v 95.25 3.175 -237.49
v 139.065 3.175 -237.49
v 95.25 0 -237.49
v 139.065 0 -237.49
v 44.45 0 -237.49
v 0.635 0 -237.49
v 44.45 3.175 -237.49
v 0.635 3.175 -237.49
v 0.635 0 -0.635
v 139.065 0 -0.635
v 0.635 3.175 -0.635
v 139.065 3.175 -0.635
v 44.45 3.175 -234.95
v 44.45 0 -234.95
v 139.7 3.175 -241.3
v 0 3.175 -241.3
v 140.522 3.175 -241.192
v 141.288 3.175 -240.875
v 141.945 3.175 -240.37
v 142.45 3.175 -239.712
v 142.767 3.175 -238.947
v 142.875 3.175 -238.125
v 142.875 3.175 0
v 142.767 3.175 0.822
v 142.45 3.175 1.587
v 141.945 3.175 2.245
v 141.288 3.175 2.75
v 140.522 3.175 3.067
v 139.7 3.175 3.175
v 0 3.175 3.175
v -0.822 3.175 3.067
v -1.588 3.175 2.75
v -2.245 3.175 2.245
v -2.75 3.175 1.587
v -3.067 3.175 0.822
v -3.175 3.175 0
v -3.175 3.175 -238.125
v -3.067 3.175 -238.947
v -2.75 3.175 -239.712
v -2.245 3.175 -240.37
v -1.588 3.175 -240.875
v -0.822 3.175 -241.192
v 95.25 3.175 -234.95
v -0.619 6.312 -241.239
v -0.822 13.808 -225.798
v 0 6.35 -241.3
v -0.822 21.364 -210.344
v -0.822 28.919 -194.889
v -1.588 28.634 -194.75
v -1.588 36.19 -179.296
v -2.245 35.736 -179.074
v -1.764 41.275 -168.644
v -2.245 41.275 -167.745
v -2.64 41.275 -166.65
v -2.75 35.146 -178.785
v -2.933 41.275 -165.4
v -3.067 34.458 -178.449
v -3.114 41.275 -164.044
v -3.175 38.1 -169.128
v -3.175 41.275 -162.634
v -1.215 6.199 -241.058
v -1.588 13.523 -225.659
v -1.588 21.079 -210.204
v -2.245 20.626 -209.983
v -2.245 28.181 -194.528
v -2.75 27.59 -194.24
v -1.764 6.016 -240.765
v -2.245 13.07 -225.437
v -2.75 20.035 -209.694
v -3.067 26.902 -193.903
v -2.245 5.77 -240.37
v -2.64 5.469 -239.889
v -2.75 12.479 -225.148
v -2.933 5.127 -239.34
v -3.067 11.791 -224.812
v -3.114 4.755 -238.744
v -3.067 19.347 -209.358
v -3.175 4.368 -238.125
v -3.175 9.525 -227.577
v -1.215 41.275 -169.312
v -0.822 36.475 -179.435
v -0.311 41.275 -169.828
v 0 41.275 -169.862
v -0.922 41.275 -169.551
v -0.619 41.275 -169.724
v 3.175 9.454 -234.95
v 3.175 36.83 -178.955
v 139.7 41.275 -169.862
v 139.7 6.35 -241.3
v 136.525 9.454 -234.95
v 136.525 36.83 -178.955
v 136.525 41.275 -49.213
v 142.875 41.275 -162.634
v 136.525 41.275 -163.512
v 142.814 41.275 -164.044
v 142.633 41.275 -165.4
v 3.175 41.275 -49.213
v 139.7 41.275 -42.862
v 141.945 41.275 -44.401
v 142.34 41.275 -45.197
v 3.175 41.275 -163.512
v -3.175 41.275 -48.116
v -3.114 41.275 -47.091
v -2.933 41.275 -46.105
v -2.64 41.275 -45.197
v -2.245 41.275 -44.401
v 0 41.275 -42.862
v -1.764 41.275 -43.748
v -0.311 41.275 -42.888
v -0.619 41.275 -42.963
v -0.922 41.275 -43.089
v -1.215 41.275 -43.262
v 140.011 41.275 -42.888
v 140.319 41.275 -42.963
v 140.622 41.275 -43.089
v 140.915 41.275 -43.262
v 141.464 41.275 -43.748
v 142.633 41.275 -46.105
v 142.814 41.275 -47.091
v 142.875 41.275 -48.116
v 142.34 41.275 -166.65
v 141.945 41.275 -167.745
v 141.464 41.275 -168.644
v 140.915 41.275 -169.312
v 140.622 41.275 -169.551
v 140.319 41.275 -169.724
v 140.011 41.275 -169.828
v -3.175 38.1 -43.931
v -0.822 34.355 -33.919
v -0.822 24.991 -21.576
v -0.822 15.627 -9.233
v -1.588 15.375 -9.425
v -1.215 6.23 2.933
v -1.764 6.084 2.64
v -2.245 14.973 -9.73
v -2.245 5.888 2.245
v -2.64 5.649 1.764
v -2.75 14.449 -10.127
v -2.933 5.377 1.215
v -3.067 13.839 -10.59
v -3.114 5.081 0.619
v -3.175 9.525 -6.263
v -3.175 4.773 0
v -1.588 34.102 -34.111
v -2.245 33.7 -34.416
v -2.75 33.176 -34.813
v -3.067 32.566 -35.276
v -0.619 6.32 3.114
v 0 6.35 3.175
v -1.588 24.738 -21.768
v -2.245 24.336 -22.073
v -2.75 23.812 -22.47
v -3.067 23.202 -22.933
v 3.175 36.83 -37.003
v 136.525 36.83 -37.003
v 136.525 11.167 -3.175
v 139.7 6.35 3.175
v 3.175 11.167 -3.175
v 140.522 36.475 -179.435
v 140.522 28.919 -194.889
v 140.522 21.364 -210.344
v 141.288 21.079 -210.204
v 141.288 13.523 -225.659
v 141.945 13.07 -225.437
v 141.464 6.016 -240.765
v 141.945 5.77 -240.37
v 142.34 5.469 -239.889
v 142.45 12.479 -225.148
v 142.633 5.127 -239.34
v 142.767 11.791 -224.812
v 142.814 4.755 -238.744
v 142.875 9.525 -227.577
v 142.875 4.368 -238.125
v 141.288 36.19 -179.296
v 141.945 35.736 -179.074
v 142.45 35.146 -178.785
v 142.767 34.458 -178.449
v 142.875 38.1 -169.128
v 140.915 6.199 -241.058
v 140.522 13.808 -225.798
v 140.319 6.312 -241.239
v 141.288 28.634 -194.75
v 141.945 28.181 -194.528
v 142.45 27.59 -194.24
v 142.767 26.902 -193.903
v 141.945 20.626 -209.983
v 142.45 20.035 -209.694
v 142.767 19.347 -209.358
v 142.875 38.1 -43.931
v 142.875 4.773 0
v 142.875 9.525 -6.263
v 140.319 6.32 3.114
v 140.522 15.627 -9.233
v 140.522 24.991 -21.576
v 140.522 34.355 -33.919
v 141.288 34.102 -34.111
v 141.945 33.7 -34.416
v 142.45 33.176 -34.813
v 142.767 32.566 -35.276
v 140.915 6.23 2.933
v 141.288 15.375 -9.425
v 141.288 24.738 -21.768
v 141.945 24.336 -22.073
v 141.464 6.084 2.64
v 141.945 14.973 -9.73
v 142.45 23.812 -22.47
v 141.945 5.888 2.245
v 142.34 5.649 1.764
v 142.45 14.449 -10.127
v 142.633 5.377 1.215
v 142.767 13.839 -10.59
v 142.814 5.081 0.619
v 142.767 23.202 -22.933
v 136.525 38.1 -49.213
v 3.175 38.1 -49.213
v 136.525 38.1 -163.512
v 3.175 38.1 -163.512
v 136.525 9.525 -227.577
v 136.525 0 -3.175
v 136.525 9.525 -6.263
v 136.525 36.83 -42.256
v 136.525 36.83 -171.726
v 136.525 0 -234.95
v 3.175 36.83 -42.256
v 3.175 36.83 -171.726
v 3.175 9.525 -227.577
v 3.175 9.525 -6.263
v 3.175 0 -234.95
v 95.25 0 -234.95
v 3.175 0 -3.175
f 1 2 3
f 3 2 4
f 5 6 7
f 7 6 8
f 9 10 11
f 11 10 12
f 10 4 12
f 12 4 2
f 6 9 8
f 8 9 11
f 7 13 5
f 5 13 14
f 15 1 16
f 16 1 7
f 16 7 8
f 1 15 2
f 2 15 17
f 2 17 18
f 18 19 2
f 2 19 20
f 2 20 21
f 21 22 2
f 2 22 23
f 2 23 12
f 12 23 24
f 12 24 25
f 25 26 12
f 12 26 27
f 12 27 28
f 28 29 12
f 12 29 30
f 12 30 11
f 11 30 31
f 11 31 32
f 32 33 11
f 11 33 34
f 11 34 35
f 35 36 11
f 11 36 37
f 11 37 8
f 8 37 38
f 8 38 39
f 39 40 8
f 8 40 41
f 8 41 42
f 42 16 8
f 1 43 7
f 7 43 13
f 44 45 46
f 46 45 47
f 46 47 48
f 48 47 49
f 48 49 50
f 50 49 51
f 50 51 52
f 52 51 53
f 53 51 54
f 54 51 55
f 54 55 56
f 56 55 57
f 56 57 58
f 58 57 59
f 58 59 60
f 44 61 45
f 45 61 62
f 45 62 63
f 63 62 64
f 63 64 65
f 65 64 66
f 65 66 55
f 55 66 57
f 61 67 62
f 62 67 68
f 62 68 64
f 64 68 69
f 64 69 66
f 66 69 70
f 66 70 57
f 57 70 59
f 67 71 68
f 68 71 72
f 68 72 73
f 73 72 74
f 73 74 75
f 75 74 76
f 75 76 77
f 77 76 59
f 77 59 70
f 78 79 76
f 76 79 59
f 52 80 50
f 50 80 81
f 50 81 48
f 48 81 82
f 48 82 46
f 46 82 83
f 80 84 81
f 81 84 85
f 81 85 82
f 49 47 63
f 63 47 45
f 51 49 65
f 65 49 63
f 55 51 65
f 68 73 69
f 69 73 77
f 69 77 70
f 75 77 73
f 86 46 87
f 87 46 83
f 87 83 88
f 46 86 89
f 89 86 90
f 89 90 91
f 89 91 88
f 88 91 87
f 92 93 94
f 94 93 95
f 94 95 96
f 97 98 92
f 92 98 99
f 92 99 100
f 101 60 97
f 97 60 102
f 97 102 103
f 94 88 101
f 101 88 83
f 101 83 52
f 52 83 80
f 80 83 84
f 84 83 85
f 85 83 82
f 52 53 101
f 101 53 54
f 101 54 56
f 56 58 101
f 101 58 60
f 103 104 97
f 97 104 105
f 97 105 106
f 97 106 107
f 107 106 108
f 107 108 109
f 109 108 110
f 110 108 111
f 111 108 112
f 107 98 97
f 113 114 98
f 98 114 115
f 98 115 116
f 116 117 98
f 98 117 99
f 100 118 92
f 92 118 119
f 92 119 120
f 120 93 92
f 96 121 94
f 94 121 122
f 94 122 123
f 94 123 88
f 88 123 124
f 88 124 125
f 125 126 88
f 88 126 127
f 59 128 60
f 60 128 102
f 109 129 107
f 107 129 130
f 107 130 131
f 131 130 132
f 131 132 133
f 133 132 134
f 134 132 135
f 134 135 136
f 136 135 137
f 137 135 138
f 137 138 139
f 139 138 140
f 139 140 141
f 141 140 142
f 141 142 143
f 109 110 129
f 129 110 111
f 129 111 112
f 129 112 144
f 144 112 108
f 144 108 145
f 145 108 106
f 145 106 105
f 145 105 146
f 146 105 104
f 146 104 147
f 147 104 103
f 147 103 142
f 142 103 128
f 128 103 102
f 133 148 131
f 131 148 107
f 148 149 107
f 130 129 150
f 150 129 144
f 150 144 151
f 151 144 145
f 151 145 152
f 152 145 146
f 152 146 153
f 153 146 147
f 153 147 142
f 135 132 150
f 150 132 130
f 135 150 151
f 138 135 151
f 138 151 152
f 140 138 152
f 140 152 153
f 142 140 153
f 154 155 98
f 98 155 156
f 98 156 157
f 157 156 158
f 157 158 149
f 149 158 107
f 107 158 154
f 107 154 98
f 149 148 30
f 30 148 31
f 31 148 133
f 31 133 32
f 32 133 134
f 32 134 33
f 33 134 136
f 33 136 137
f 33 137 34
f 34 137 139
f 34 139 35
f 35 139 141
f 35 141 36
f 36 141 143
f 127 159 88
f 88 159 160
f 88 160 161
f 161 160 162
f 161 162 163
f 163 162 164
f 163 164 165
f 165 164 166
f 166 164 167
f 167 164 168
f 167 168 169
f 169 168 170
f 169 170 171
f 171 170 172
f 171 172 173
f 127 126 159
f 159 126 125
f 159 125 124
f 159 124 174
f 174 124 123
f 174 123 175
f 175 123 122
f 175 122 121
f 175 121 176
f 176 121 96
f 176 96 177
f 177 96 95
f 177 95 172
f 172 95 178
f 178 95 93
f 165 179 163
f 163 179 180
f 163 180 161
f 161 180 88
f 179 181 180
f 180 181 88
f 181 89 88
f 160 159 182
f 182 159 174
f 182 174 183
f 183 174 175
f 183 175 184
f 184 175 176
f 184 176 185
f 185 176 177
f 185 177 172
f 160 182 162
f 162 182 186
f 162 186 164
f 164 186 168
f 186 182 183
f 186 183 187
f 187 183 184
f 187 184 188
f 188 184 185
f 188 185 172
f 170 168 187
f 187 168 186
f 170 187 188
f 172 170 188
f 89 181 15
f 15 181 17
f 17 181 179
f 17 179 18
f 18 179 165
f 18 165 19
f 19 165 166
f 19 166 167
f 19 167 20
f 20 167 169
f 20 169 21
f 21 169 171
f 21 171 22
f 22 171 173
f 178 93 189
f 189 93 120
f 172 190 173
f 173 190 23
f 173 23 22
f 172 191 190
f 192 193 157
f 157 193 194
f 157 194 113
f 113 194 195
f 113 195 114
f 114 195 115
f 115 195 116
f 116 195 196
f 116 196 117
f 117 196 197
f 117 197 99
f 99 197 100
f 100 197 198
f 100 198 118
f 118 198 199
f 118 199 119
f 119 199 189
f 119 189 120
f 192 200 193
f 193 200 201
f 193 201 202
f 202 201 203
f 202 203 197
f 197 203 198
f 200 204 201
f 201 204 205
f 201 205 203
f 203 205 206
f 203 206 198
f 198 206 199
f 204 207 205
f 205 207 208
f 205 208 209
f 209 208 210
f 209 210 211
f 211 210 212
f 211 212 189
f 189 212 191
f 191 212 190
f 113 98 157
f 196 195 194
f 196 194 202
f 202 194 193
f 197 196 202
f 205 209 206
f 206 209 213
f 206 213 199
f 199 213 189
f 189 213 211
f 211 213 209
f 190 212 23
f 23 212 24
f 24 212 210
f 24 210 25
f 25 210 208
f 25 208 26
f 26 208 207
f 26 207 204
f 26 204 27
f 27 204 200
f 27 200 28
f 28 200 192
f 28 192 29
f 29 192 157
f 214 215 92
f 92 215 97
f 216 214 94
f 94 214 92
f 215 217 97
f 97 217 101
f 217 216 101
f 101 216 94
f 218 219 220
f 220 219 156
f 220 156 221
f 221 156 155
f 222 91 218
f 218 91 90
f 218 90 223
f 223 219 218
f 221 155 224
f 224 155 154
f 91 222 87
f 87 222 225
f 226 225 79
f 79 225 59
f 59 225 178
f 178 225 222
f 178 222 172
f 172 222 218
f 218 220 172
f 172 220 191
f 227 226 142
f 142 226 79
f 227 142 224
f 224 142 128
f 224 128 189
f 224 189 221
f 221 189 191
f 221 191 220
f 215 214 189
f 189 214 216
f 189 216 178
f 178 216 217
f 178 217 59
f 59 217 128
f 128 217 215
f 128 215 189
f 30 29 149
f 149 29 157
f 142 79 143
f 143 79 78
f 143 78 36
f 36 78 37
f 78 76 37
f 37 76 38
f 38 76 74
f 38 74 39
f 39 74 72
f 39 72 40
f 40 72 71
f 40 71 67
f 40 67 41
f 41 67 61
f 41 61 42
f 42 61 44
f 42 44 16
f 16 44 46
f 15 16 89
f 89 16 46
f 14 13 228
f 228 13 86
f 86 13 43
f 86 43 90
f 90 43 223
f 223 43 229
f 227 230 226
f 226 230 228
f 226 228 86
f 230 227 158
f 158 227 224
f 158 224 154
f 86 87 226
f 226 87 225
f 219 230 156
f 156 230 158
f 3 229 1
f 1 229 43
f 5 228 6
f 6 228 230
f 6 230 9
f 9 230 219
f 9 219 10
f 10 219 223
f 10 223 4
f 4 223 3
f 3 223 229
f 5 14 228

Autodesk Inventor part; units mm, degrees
ref_plane "YZ Plane" through (0, 0, 0) normal (1, 0, 0) x (0, 1, 0)
ref_plane "XZ Plane" through (0, 0, 0) normal (0, 1, 0) x (-1, 0, 0)
ref_plane "XY Plane" through (0, 0, 0) normal (0, 0, 1) x (1, 0, 0)
sketch "Sketch1" plane through (0, 0, 0) normal (0, 1, 0) x (-1, 0, 0)
  line L0 (0, 0) -> (-139.7, 0)
  line L1 (-139.7, 0) -> (-139.7, -238.125)
  line L2 (-139.7, -238.125) -> (0, -238.125)
  line L3 (0, -238.125) -> (0, 0)
  line L4 (-3.175, -3.175) -> (-136.525, -3.175)
  line L5 (-136.525, -3.175) -> (-136.525, -234.95)
  line L6 (-136.525, -234.95) -> (-3.175, -234.95)
  line L7 (-3.175, -234.95) -> (-3.175, -3.175)
  line L8 (0, -238.125) -> (-139.7, -238.125)
  line L9 (-69.85, -238.125) -> (-59.69, -238.125)
  line L10 (-59.69, -238.125) -> (-80.01, -238.125)
  line L11 (-80.01, -234.95) -> (-59.69, -234.95)
  line L12 (-69.85, -238.125) -> (-69.85, -234.95)
  line L13 (-69.85, -238.125) -> (-44.45, -238.125)
  line L14 (-44.45, -238.125) -> (-95.25, -238.125)
  line L15 (-95.25, -238.125) -> (-95.25, -234.95)
  line L16 (-95.25, -234.95) -> (-44.45, -234.95)
  line L17 (-44.45, -234.95) -> (-44.45, -238.125)
  line L18 (-44.45, -238.125) -> (-95.25, -238.125)
  dimension "d0" = 139.7
  dimension "d1" = 238.125
  dimension "d2" = 3.175
  dimension "d45" = 25.4
  dimension "d46" = 50.8
extrude "Extrusion1" add sketch "Sketch1" along normal blind 3.175 contours L3 L2 L17 L6 L7 L4 L5 L15 L1 L0
sketch "Sketch2" plane through (0, 3.175, 0) normal (0, 1, 0) x (1, 0, 0)
  line L0 (0, 238.125) -> (0, 0) projected
  line L1 (139.7, 238.125) -> (0, 238.125) projected
  line L2 (0, 0) -> (139.7, 0)
  line L3 (139.7, 0) -> (139.7, 238.125)
  line L4 (139.7, 238.125) -> (0, 238.125)
  line L5 (0, 238.125) -> (0, 0)
  line L6 (139.7, -3.175) -> (0, -3.175)
  line L7 (-3.175, 0) -> (-3.175, 238.125)
  line L8 (0, 241.3) -> (139.7, 241.3)
  line L9 (142.875, 238.125) -> (142.875, 0)
  arc A0 (0, 241.3) -> (-3.175, 238.125) centre (0, 238.125) ccw
  arc A1 (-3.175, 0) -> (0, -3.175) centre (0, 0) ccw
  arc A2 (139.7, -3.175) -> (142.875, 0) centre (139.7, 0) ccw
  arc A3 (142.875, 238.125) -> (139.7, 241.3) centre (139.7, 238.125) ccw
  line L10 (136.525, 3.175) -> (3.175, 3.175) projected
  line L11 (139.7, 234.95) -> (3.175, 234.95)
  line L12 (3.175, 234.95) -> (3.175, 3.175)
  line L13 (3.175, 3.175) -> (139.7, 3.175)
  line L14 (139.7, 3.175) -> (139.7, 234.95)
  point P0 (80.01, 238.125)
  point P1 (139.7, 3.175)
  point P2 (139.7, 234.95)
  dimension "d7" = 3.175
extrude "Extrusion2" add sketch "Sketch2" along normal blind 3.175 contours L1 L3 L11 L12 L10 L13 L2 L0 | L3 L13 L10 L12 L11 | L6 A1 L7 A0 L8 A3 L9 A2
sketch "Sketch3" plane through (142.875, 3.175, 0) normal (1, 0, 0) x (0, 0, -1)
  line L0 (-3.175, 3.175) -> (241.3, 3.175)
  line L1 (0, 3.175) -> (238.125, 3.175) projected
  line L2 (119.0625, 3.175) -> (119.0625, 38.1)
  line L3 (119.0625, 38.1) -> (42.8625, 38.1)
  line L4 (119.0625, 38.1) -> (169.8625, 38.1)
  line L5 (-3.175, 3.175) -> (42.8625, 38.1)
  line L6 (169.8625, 38.1) -> (241.3, 3.175)
  line L7 (43.9305, 34.925) -> (119.0625, 34.925)
  line L8 (119.0625, 34.925) -> (169.1279, 34.925)
  line L9 (169.1279, 34.925) -> (227.5768, 6.35)
  line L10 (227.5768, 6.35) -> (6.2635, 6.35)
  line L11 (6.2635, 6.35) -> (43.9305, 34.925)
  point P0 (0, -3.175)
  dimension "d10" = 34.925
  dimension "d11" = 76.2
  dimension "d12" = 50.8
  dimension "d13" = 3.175
extrude "Extrusion3" add sketch "Sketch3" against normal blind 146.05 contours L5 L3 L2 L7 L11 L10 L0 | L2 L10 L9 L8 L4 L6 L0
sketch "Sketch4" plane through (0, 0, 0) normal (0, -1, 0) x (1, 0, 0)
  line L0 (0, 0) -> (139.7, 0) projected
  line L1 (0, -238.125) -> (139.7, -238.125) projected
  line L2 (0, 0) -> (139.7, 0)
  line L3 (139.7, 0) -> (139.7, -238.125)
  line L4 (139.7, -238.125) -> (0, -238.125)
  line L5 (0, -238.125) -> (0, 0)
  line L6 (136.525, -234.95) -> (136.525, -3.175)
  line L7 (136.525, -3.175) -> (3.175, -3.175)
  line L8 (3.175, -3.175) -> (3.175, -234.95)
  line L9 (3.175, -234.95) -> (136.525, -234.95)
extrude "Extrusion4" cut sketch "Sketch4" against normal blind 36.83 contours L9 L8 L7 L6
sketch "Sketch7" plane through (142.875, 41.275, -42.8625) normal (0, 1, 0) x (1, 0, 0)
  line L0 (-146.05, -36.599) -> (-146.05, 184.7143) projected
  line L1 (-146.05, 0) -> (0, 0)
  line L2 (0, 0) -> (0, 127)
  line L3 (0, 127) -> (-146.05, 127)
  line L4 (-146.05, 127) -> (-146.05, 0)
  line L5 (-139.7, 120.65) -> (-6.35, 120.65)
  line L6 (-6.35, 120.65) -> (-6.35, 6.35)
  line L7 (-6.35, 6.35) -> (-139.7, 6.35)
  line L8 (-139.7, 6.35) -> (-139.7, 120.65)
  point P0 (-142.875, -42.8625)
  dimension "d36" = 6.35
extrude "Extrusion6" cut sketch "Sketch7" against normal blind 36.83 contours L5 L6 L7 L8
fillet "Fillet1" radius 3.175 1 edges at (142.875, 23.8125, -19.8437)
fillet "Fillet2" radius 3.175 1 edges at (142.875, 23.8125, -205.5813)
fillet "Fillet3" radius 3.175 2 edges at (-3.175, 23.8125, -19.8437) (-3.175, 23.8125, -205.5813)
sketch "Sketch8" plane through (0, 0, 0) normal (0, -1, 0) x (1, 0, 0)
  line L0 (0, 0) -> (139.7, 0)
  line L1 (139.7, 0) -> (139.7, -238.125)
  line L2 (139.7, -238.125) -> (0, -238.125)
  line L3 (0, -238.125) -> (0, 0)
  line L4 (0.635, -237.49) -> (139.065, -237.49)
  line L5 (139.065, -237.49) -> (139.065, -0.635)
  line L6 (139.065, -0.635) -> (0.635, -0.635)
  line L7 (0.635, -0.635) -> (0.635, -237.49)
  dimension "d42" = 0.635
extrude "Extrusion7" cut sketch "Sketch8" against normal blind 3.175
properties part number "TopLid_3DPrint"
